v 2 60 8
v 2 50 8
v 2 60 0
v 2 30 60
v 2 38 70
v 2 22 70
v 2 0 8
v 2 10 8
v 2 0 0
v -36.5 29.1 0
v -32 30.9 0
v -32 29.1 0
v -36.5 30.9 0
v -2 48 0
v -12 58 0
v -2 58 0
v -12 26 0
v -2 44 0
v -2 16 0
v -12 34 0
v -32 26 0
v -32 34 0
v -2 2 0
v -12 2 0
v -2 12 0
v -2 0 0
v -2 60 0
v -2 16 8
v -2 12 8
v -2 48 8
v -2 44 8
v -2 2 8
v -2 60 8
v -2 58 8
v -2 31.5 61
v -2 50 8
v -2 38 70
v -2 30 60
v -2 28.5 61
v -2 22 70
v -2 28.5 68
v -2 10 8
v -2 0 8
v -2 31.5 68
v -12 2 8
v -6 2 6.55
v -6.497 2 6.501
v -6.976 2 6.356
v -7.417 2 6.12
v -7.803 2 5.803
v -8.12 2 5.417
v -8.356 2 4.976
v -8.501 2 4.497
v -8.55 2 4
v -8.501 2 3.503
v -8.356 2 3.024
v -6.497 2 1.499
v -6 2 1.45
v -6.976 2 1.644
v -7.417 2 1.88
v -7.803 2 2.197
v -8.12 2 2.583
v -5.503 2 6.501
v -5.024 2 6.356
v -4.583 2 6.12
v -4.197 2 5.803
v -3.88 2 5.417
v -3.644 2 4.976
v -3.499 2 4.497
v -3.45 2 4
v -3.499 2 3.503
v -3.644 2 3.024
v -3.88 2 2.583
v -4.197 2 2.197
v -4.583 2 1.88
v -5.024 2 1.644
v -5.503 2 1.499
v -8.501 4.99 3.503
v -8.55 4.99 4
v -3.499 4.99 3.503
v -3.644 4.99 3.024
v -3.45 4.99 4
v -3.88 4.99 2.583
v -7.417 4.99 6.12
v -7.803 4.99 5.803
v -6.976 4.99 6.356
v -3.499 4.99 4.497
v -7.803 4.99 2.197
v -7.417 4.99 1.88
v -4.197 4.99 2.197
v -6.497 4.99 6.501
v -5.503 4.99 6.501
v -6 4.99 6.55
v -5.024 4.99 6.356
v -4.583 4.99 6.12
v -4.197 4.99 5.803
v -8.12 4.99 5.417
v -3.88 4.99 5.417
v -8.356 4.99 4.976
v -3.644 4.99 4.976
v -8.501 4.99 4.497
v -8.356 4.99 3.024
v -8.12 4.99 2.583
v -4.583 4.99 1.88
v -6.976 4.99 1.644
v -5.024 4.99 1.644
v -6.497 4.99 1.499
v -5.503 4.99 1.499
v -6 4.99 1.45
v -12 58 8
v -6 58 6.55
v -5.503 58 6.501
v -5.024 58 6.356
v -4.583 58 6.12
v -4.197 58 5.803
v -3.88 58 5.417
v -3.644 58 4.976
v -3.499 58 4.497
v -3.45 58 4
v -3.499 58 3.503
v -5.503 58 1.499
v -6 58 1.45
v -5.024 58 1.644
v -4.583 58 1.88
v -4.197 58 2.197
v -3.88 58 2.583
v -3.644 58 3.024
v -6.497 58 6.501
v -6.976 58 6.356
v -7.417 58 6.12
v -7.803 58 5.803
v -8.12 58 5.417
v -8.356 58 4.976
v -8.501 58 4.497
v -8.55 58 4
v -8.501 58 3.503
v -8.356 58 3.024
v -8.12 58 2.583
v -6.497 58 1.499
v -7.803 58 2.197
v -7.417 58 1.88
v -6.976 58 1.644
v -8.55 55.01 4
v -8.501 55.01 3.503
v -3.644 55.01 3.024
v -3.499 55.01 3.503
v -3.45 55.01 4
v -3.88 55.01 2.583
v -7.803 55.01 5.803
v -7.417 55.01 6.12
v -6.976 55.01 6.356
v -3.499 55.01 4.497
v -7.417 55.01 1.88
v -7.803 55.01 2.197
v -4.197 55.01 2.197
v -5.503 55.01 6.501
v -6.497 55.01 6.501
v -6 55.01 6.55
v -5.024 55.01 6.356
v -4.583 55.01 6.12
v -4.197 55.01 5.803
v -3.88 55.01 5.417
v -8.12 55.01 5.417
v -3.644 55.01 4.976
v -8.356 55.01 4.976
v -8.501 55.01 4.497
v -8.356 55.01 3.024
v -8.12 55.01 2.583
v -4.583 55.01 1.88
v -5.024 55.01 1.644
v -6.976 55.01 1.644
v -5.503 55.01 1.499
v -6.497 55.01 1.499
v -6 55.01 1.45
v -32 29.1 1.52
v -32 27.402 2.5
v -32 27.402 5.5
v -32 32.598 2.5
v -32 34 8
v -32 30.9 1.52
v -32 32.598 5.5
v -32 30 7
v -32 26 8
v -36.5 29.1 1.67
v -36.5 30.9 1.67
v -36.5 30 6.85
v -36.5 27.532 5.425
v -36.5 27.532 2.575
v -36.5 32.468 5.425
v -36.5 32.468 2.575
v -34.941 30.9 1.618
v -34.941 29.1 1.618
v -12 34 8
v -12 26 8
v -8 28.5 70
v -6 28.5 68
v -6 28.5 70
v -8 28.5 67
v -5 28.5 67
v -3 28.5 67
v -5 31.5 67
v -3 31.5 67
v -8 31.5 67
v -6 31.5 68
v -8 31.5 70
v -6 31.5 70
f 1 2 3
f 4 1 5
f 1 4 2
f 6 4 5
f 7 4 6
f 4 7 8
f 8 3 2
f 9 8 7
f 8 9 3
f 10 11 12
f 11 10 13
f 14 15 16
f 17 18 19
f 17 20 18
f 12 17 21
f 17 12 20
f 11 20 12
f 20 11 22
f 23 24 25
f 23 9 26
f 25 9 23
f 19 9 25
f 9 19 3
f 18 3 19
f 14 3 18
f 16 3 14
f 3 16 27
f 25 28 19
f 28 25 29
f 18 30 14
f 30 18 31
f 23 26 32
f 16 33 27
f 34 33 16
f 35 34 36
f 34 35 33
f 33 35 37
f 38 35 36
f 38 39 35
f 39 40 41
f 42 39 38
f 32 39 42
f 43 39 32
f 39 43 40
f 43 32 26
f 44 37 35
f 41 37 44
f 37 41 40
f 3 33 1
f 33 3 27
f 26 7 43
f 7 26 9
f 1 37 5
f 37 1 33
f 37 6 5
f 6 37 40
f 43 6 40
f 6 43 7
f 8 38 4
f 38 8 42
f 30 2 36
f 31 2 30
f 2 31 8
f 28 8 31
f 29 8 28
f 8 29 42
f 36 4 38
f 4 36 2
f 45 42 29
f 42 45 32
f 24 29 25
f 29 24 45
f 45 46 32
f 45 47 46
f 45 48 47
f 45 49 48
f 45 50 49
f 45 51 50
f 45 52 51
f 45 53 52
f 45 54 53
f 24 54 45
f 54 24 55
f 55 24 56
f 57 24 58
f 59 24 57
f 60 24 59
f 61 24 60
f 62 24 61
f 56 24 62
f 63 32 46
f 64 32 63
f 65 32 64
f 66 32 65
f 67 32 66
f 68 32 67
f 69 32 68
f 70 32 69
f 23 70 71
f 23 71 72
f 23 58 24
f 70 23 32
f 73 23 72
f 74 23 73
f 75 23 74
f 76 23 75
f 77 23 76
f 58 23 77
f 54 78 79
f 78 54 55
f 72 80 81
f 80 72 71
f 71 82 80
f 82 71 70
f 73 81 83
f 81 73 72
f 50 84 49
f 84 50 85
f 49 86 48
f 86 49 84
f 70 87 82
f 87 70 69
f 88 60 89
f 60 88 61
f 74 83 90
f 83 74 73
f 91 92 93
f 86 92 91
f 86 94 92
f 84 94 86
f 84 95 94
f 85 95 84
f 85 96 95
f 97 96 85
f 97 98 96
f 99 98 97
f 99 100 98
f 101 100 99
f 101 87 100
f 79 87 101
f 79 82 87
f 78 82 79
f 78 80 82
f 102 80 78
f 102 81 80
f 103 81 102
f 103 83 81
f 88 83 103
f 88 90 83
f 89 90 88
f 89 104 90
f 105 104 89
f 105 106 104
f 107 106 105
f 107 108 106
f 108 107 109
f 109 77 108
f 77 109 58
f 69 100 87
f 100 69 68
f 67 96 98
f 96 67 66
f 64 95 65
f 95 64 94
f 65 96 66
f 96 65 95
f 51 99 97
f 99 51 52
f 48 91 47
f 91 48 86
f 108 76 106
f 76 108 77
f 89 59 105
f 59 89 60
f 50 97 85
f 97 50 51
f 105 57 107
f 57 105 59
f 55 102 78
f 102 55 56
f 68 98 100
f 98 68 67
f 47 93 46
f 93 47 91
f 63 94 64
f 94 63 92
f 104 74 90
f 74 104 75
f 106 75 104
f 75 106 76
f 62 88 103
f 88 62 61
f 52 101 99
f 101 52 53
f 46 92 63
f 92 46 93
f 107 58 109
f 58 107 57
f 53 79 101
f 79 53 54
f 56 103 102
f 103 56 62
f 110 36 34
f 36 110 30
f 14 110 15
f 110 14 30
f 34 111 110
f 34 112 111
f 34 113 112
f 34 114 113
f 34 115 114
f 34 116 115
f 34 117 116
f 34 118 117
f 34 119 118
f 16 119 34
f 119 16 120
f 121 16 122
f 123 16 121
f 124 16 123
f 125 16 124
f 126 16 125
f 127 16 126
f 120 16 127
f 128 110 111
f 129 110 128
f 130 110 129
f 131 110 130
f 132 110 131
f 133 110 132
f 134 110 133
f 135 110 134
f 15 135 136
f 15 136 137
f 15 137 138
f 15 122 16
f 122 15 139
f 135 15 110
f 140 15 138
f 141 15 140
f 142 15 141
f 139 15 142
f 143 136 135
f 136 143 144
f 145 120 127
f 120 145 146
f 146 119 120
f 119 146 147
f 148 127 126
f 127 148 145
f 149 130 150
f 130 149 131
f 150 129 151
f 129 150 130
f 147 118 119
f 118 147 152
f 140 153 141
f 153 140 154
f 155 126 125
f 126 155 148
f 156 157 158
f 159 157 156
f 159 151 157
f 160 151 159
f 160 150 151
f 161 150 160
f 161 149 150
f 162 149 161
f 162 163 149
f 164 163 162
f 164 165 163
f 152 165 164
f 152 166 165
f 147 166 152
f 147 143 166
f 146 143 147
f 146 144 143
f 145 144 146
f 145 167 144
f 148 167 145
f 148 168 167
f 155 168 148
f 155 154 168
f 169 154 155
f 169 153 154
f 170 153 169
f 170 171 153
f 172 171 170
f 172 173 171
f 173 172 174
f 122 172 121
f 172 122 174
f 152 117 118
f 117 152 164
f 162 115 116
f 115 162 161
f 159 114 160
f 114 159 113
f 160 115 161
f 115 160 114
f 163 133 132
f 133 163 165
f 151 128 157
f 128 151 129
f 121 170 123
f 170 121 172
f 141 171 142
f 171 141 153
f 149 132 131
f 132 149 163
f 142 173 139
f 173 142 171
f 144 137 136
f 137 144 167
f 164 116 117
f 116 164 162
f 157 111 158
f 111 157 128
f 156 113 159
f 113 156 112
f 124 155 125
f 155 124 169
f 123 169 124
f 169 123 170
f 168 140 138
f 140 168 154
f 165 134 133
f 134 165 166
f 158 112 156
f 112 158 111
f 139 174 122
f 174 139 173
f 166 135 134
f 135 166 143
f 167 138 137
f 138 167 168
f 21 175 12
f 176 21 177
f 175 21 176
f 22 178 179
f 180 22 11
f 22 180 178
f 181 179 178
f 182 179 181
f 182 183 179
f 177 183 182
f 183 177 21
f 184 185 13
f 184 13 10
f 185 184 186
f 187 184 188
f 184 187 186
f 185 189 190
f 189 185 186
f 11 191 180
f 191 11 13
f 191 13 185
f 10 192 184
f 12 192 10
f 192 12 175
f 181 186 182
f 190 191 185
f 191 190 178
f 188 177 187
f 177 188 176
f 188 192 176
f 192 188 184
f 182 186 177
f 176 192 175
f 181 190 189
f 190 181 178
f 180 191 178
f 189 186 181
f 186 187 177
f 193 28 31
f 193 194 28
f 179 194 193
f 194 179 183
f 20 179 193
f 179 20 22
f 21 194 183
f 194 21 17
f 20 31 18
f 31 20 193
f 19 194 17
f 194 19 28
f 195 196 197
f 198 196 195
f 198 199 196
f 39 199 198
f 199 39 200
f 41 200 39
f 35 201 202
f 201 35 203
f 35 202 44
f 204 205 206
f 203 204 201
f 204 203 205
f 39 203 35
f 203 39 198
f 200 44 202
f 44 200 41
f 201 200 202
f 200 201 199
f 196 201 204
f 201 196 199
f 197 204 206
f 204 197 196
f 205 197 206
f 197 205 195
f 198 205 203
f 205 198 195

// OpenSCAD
// file: ffp2_drying_rack.scad
/*

  ffp2_drying_rack.scad

  (c) olikraus@gmail.com

  This work is licensed under the Creative Commons Attribution-NonCommercial-ShareAlike 4.0 International License. 
  To view a copy of this license, visit http://creativecommons.org/licenses/by-nc-sa/4.0/.
    
*/


$fn=32;

clip_len=40;
clip_height=8;
clip_thickness=2;
clip_diameter = clip_height-3;
clip_cylinder_len = 2.5;

/* min 8 for clip_cyllinder_len=2.5 
    also depends on clip_diameter and in turn on clip_height
    clip_triangle_len must be also larger than press_fit_len
*/
clip_triangle_len = 10;

/* clip hole diameter extention, so that the clip fits better */
clip_diameter_gap = 0.1; 


hook_len=6;
hook_nose_height=3;
hook_nose_width=2;
hook_thickness=3;

wall_thickness=4;
wall_height=70;
wall_width=60;

press_fit_len=5;
press_fit_diameter=clip_height-2;


module triangle_block() {
    linear_extrude(height=clip_height)
    polygon(points=[[0,0],[clip_triangle_len,0],[0,clip_triangle_len]]);
}

module clip_m() {
    union() {
        translate([0,clip_thickness,0])
        triangle_block();
        cube([clip_len, clip_thickness,clip_height]);
        translate([clip_len-(clip_height)/2,clip_thickness,clip_height/2])
        rotate([-90,0,0])
        difference() {
            cylinder(d=clip_diameter, h=clip_cylinder_len);
            translate([0,(clip_diameter)/2,0])
            rotate([-38,0,0])
            translate([-clip_height/2, -clip_height, 0])
            cube([clip_height,clip_height,clip_height]);
        }
    }
}


module clip_f() {
    translate([0,clip_thickness,0])
    difference() {
        rotate([0,0,90])
        triangle_block();
        translate([-clip_height/2,-0.01,clip_height/2])
        rotate([-90,0,0])
        cylinder(d=clip_diameter+clip_diameter_gap, 
                h=clip_cylinder_len+0.5);
    }
}

module hook() {
    rotate([-90,0,0])
    linear_extrude(height=hook_thickness, center=true)
    polygon(points=[
        [0,-1],
        [1,0],
        [hook_len-hook_nose_width-1,0],
        [hook_len-hook_nose_width,-1],
        [hook_len-hook_nose_width,-hook_nose_height],
        [hook_len,-hook_nose_height],
        [hook_len,0],
        [0,hook_len]]);
}

module press_fit_f() {
    difference() {
        translate([0,-clip_height/2,0])
        cube([clip_triangle_len, clip_height, clip_height]);
        
        translate([clip_triangle_len-press_fit_len,
            -press_fit_diameter/3/2,
            -0.01])
        cube([press_fit_len+0.01,press_fit_diameter/3,clip_height/2]);
        

        translate([clip_triangle_len-press_fit_len,0,clip_height/2])
        rotate([0,90,0])
        cylinder(d=press_fit_diameter,h=press_fit_len+0.01, $fn=64);
    }

    translate([0,clip_height/2,0])
    triangle_block();

    mirror([0,1,0])
    translate([0,clip_height/2,0])
    triangle_block();
}

module press_fit_m() {

    translate([-clip_len+clip_triangle_len,0,0])
    union() {
        translate([0.5-press_fit_len,-(press_fit_diameter/3-0.2)/2,0])
        cube([press_fit_len-0.5,press_fit_diameter/3-0.2,clip_height/2]);
        
        translate([0,0,clip_height/2])
        rotate([0,-90,0])
        cylinder(
            d1=press_fit_diameter, 
            d2=press_fit_diameter*0.95, 
            h=press_fit_len-0.5, $fn=6);
        
        translate([0,-clip_height/2,0])
        cube([clip_len-clip_triangle_len, clip_height, clip_height]);
        
        translate([clip_len-clip_triangle_len,clip_height/2,0])
        mirror([1,0,0])
        triangle_block();

        translate([clip_len-clip_triangle_len,-clip_height/2,0])
        rotate([0,0,180])
        triangle_block();
        
    }
}

module pure_wall() {
    difference() {
        union() {
            translate([-wall_thickness/2,0,0])
            cube([wall_thickness, wall_width, clip_height]);

            translate([wall_thickness/2,0,clip_height])
            rotate([0,-90,0])
            linear_extrude(height=wall_thickness)
            polygon(points=[
                [0,0],
                [0,wall_width],
                [wall_height-clip_height,wall_width/2+clip_height],
                [wall_height-clip_height,wall_width/2-clip_height]
            ]);


            
        }

        translate([wall_thickness,0,clip_height])
        rotate([0,-90,0])
        linear_extrude(height=wall_thickness*2)
        polygon(points=[
        [0,clip_triangle_len],
        [0,wall_width-clip_triangle_len],
        [wall_height-clip_height-clip_triangle_len,wall_width/2]
        ]);
    }
    
}


module wall(is_left=1, is_right=1) {
    union() {
        //translate([-wall_thickness/2,0,0])
        //cube([wall_thickness, wall_width, wall_height]);
        pure_wall();
        if ( is_right) {
            translate([wall_thickness/2,0,0])
            clip_m();

            translate([wall_thickness/2,wall_width,0])
            mirror([0,1,0])
            clip_m();

            translate([wall_thickness/2,wall_width/2,0])
            press_fit_f();
            
            translate([wall_thickness/2,
                    wall_width/2,
                    wall_height-hook_nose_height])            
            hook();
                      
        }

        if ( is_left) {

            translate([-wall_thickness/2,0,0])
            clip_f();

            translate([-wall_thickness/2,wall_width,0])
            mirror([0,1,0])
            clip_f();
            
            translate([-wall_thickness/2,wall_width/2,0])
            press_fit_m();
            
            mirror([1,0,0])
            translate([wall_thickness/2,
                    wall_width/2,
                    wall_height-hook_nose_height])
            hook();
            
        }
    }
}


//wall(1,1);
// main file
/*

  left_wall.scad

  (c) olikraus@gmail.com

  This work is licensed under the Creative Commons Attribution-NonCommercial-ShareAlike 4.0 International License. 
  To view a copy of this license, visit http://creativecommons.org/licenses/by-nc-sa/4.0/.
    
*/
include <ffp2_drying_rack.scad>

wall(1,0);
